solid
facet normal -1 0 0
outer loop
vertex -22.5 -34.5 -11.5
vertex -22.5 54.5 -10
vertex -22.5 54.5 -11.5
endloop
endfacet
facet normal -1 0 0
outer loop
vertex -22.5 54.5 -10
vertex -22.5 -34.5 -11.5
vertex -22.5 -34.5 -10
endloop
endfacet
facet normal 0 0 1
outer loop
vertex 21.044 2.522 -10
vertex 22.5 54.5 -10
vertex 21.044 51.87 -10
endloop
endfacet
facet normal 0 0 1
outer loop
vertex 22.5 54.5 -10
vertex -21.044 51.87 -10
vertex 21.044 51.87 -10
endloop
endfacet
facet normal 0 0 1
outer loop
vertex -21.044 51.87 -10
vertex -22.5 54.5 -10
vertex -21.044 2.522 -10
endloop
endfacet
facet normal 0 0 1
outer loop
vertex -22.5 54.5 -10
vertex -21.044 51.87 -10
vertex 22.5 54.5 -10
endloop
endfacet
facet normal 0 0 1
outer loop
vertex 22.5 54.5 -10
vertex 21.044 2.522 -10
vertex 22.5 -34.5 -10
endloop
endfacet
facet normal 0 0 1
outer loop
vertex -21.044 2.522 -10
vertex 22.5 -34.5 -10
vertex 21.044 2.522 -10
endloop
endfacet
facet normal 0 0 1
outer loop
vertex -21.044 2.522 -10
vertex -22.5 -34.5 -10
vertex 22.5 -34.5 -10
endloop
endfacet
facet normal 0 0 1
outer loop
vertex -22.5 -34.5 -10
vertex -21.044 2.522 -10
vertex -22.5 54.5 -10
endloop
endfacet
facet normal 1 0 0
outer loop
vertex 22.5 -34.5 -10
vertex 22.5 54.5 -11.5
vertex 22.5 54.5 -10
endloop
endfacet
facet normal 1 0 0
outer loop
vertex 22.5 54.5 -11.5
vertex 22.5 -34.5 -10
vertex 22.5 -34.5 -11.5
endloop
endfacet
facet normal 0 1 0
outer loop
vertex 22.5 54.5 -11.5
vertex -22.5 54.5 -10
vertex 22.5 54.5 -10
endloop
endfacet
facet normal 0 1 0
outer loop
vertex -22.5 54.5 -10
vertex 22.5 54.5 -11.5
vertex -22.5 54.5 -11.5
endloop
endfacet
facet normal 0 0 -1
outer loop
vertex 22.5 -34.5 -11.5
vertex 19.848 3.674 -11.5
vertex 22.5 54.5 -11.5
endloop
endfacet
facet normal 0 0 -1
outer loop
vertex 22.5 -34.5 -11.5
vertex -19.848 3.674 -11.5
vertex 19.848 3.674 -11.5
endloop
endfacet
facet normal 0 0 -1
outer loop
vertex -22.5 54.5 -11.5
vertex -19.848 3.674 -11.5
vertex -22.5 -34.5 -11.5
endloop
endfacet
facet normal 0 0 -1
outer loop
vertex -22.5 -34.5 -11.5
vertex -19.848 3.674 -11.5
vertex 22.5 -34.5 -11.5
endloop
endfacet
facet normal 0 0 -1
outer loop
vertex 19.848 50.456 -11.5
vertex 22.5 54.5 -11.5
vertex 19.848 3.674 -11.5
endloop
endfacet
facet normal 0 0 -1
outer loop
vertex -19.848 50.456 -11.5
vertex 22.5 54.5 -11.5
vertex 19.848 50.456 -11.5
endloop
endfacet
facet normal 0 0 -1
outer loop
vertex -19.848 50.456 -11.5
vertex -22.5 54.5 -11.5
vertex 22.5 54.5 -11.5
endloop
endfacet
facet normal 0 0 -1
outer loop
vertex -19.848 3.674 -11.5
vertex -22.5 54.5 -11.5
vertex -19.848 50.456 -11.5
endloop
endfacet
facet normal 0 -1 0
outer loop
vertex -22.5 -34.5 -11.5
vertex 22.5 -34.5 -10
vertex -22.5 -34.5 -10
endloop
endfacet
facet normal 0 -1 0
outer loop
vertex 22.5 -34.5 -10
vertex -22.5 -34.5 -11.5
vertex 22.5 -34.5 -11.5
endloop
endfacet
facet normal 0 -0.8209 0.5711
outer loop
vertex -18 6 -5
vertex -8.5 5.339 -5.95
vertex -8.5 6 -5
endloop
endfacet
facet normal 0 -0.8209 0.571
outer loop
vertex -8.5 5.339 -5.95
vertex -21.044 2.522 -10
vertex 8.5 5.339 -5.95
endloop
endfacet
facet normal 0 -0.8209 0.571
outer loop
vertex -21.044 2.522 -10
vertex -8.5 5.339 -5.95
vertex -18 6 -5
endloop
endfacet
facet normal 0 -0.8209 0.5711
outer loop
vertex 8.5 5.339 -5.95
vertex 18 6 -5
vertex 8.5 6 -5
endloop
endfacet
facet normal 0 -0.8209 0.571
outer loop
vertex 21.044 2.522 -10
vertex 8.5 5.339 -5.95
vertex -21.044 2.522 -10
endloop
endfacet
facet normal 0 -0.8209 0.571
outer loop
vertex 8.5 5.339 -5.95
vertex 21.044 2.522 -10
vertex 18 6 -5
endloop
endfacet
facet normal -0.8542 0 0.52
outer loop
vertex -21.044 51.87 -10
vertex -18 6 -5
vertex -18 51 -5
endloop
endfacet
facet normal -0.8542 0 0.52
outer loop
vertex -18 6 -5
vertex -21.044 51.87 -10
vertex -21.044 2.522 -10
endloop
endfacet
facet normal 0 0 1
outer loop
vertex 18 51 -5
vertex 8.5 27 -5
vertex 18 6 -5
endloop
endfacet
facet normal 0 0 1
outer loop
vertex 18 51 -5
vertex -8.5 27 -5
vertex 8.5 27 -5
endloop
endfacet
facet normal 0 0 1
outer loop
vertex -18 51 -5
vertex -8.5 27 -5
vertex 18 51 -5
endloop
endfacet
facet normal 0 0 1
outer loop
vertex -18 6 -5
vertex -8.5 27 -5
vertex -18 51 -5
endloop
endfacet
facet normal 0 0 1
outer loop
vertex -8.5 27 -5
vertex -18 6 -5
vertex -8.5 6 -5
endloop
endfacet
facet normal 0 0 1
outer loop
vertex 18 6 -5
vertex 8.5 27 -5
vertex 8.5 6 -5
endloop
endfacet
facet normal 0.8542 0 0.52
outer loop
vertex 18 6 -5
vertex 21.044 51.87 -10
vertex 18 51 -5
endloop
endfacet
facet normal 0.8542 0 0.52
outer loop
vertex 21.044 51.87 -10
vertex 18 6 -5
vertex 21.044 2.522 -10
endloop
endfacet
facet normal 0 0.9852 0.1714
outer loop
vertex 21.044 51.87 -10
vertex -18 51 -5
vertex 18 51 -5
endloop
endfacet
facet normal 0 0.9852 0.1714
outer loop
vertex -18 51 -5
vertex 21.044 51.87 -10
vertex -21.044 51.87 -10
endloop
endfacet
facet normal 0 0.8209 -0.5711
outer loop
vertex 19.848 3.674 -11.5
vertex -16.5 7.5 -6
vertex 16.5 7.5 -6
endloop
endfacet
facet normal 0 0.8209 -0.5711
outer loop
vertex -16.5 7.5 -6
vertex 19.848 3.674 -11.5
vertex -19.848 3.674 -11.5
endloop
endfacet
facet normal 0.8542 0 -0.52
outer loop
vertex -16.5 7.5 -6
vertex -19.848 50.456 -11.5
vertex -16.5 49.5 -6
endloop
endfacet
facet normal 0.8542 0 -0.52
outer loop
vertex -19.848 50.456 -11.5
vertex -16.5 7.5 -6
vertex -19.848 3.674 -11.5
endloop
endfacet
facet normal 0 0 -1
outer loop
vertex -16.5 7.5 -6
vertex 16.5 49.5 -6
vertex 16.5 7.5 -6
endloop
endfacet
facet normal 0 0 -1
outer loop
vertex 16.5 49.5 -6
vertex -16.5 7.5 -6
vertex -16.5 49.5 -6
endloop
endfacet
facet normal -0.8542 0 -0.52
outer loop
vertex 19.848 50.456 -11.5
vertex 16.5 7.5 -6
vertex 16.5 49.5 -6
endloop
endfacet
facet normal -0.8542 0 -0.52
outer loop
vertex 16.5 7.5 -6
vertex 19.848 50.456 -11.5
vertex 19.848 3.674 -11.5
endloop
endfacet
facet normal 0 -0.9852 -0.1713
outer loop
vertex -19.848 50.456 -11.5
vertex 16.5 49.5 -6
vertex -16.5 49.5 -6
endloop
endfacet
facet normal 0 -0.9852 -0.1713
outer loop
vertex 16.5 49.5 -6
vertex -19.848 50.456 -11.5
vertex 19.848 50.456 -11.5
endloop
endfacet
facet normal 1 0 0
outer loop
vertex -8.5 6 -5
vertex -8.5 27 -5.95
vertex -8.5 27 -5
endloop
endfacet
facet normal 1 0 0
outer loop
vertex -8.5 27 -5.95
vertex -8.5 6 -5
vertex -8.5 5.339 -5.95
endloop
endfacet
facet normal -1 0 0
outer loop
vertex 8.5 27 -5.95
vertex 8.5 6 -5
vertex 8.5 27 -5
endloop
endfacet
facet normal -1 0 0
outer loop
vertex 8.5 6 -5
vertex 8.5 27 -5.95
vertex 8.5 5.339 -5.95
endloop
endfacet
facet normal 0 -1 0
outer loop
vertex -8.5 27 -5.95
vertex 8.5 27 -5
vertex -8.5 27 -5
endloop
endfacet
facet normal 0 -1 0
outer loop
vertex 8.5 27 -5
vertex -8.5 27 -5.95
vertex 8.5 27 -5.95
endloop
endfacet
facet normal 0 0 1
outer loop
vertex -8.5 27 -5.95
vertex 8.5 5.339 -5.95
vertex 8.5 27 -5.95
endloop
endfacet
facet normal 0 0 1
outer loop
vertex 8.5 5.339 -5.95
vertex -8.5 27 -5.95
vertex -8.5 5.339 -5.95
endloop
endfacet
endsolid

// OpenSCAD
$fn=20;

//translate([-3.5,6,-25])color("GRAY")ACDC24V();

//Box();
    
translate([0,10,-10.75])middlePlate();

module Box(){
difference(){
    union(){
        difference(){
            union(){
                generalBox(21.5,64.5,21,4);
                //translate([-17,-18.5,0])generalBox(20,35,21,3);
            }
            translate([0,0,-0.7])generalBox(19,62,20,2.6);
            //translate([-17,-18,-0.7])generalBox(18,32,20,1.6);

            // cutout for PowerJack
            translate([-17,-11,0.5])rotate([90,0,0])cylinder(d=11,h=30);

            // cutout for encoder pin
            translate([0.4,-23,9]){
                cylinder(d=7.2,h=20);
                translate([6,0,0])cube([2,4,3.5], center=true);
            }

            // Cutout for USB
            translate([0.5,-35,-4])cube([11.5,10,9], center=true);

        }
        // frame for OLED
        translate([0.4,-23+15+25/2+1,9.4])cube([10,27,1], center=true);
        
        // PCB holders
        translate([9,20,9.2-12]){
            rotate([90,0,0])cylinder(d=1.5,h=8,center=true);
            translate([0,-4,-0.75])cube([1,8,5]);
        }
        translate([-9,20,9.2-12]){
            rotate([90,0,0])cylinder(d=1.5,h=8,center=true);
            translate([-1,-4,-0.75])cube([1,8,5]);
        }
   }
    // cutout for OLED
    translate([0.4,-23+15+25/2+1,9]){
        
        cube([8,25,5], center=true);
        hull(){
            translate([0,0,3])cube([11,28,0.1], center=true);
            translate([0,0,2])cube([8,25,3], center=true);
        }
    }
    translate([0,10,-10.75])translate([-43/2,-8,0])DCDC_cover_part(43,50);

}
translate([8.3,-29.8,-5])case_mountinghole_corner();
translate([-8.3,-29.8,-5])rotate([0,0,-90])case_mountinghole_corner();
translate([0,29,0])rotate([0,0,180])case_mountinghole();

}



module generalBox(sx,sy,sz,diam){
    hull(){
        translate([(sx-diam)/2,(sy-diam)/2,0])generalBoxCylinder(sz,diam);
        translate([(-sx+diam)/2,(sy-diam)/2,0])generalBoxCylinder(sz,diam);
        translate([(sx-diam)/2,-(sy-diam)/2,0])generalBoxCylinder(sz,diam);
        translate([-(sx-diam)/2,-(sy-diam)/2,0])generalBoxCylinder(sz,diam);
    }
}

module generalBoxCylinder(hght,diam){
    cylinder(d=diam, h=hght-1,center=true);
    translate([0,0,(hght-1)/2])cylinder(d1=diam,d2=diam-1.2, h=1);
}

module case_mountinghole(){
    rotate([0,180,0])difference(){
        hull(){
            cylinder(d=4, h=10, center=true);
            translate([0,-2,0])cube([4,2,10], center=true);
        }
        translate([0,0,3])cylinder(d=2, h=8, center=true);
        translate([0,2,-8])rotate([45,0,0])cube([15,15,10], center=true);
    }
}

module case_mountinghole_corner(){
    rotate([0,180,0])difference(){
        hull(){
            cylinder(d=4, h=10, center=true);
            translate([0,-1,0])cube([4,2,10], center=true);
            translate([-1,0,0])cube([2,4,10], center=true);
        }
        translate([0,0,3])cylinder(d=2, h=8, center=true);
        translate([0,2,-8])rotate([45,0,-45])cube([15,15,10], center=true);
        // cut the corner
        translate([-2,-2,0])rotate([0,0,-45])cube([4,2,11], center=true);
    }
}

module DCDC_cover_part(x,y){
    hull(){
        translate([0,0,-0.5])cube([x,y,0.5]);
        translate([3.5,4,4.75])cube([x-7,y-5,1]);
    }
}

module middlePlate(){
    difference(){
        union(){
            translate([0,0,0])cube([36+7+2,87+2,1.5], center=true);
            translate([-43/2,-8,0])DCDC_cover_part(43,50);
        }
        translate([-43/2+1.5,-8+1.5,-1])DCDC_cover_part(40,47);
        translate([0,2,5.2+0.6])cube([17,30,2],center=true);
    }
    
}

module ACDC24V(){
    cube([36,77,27], center=true);
}
